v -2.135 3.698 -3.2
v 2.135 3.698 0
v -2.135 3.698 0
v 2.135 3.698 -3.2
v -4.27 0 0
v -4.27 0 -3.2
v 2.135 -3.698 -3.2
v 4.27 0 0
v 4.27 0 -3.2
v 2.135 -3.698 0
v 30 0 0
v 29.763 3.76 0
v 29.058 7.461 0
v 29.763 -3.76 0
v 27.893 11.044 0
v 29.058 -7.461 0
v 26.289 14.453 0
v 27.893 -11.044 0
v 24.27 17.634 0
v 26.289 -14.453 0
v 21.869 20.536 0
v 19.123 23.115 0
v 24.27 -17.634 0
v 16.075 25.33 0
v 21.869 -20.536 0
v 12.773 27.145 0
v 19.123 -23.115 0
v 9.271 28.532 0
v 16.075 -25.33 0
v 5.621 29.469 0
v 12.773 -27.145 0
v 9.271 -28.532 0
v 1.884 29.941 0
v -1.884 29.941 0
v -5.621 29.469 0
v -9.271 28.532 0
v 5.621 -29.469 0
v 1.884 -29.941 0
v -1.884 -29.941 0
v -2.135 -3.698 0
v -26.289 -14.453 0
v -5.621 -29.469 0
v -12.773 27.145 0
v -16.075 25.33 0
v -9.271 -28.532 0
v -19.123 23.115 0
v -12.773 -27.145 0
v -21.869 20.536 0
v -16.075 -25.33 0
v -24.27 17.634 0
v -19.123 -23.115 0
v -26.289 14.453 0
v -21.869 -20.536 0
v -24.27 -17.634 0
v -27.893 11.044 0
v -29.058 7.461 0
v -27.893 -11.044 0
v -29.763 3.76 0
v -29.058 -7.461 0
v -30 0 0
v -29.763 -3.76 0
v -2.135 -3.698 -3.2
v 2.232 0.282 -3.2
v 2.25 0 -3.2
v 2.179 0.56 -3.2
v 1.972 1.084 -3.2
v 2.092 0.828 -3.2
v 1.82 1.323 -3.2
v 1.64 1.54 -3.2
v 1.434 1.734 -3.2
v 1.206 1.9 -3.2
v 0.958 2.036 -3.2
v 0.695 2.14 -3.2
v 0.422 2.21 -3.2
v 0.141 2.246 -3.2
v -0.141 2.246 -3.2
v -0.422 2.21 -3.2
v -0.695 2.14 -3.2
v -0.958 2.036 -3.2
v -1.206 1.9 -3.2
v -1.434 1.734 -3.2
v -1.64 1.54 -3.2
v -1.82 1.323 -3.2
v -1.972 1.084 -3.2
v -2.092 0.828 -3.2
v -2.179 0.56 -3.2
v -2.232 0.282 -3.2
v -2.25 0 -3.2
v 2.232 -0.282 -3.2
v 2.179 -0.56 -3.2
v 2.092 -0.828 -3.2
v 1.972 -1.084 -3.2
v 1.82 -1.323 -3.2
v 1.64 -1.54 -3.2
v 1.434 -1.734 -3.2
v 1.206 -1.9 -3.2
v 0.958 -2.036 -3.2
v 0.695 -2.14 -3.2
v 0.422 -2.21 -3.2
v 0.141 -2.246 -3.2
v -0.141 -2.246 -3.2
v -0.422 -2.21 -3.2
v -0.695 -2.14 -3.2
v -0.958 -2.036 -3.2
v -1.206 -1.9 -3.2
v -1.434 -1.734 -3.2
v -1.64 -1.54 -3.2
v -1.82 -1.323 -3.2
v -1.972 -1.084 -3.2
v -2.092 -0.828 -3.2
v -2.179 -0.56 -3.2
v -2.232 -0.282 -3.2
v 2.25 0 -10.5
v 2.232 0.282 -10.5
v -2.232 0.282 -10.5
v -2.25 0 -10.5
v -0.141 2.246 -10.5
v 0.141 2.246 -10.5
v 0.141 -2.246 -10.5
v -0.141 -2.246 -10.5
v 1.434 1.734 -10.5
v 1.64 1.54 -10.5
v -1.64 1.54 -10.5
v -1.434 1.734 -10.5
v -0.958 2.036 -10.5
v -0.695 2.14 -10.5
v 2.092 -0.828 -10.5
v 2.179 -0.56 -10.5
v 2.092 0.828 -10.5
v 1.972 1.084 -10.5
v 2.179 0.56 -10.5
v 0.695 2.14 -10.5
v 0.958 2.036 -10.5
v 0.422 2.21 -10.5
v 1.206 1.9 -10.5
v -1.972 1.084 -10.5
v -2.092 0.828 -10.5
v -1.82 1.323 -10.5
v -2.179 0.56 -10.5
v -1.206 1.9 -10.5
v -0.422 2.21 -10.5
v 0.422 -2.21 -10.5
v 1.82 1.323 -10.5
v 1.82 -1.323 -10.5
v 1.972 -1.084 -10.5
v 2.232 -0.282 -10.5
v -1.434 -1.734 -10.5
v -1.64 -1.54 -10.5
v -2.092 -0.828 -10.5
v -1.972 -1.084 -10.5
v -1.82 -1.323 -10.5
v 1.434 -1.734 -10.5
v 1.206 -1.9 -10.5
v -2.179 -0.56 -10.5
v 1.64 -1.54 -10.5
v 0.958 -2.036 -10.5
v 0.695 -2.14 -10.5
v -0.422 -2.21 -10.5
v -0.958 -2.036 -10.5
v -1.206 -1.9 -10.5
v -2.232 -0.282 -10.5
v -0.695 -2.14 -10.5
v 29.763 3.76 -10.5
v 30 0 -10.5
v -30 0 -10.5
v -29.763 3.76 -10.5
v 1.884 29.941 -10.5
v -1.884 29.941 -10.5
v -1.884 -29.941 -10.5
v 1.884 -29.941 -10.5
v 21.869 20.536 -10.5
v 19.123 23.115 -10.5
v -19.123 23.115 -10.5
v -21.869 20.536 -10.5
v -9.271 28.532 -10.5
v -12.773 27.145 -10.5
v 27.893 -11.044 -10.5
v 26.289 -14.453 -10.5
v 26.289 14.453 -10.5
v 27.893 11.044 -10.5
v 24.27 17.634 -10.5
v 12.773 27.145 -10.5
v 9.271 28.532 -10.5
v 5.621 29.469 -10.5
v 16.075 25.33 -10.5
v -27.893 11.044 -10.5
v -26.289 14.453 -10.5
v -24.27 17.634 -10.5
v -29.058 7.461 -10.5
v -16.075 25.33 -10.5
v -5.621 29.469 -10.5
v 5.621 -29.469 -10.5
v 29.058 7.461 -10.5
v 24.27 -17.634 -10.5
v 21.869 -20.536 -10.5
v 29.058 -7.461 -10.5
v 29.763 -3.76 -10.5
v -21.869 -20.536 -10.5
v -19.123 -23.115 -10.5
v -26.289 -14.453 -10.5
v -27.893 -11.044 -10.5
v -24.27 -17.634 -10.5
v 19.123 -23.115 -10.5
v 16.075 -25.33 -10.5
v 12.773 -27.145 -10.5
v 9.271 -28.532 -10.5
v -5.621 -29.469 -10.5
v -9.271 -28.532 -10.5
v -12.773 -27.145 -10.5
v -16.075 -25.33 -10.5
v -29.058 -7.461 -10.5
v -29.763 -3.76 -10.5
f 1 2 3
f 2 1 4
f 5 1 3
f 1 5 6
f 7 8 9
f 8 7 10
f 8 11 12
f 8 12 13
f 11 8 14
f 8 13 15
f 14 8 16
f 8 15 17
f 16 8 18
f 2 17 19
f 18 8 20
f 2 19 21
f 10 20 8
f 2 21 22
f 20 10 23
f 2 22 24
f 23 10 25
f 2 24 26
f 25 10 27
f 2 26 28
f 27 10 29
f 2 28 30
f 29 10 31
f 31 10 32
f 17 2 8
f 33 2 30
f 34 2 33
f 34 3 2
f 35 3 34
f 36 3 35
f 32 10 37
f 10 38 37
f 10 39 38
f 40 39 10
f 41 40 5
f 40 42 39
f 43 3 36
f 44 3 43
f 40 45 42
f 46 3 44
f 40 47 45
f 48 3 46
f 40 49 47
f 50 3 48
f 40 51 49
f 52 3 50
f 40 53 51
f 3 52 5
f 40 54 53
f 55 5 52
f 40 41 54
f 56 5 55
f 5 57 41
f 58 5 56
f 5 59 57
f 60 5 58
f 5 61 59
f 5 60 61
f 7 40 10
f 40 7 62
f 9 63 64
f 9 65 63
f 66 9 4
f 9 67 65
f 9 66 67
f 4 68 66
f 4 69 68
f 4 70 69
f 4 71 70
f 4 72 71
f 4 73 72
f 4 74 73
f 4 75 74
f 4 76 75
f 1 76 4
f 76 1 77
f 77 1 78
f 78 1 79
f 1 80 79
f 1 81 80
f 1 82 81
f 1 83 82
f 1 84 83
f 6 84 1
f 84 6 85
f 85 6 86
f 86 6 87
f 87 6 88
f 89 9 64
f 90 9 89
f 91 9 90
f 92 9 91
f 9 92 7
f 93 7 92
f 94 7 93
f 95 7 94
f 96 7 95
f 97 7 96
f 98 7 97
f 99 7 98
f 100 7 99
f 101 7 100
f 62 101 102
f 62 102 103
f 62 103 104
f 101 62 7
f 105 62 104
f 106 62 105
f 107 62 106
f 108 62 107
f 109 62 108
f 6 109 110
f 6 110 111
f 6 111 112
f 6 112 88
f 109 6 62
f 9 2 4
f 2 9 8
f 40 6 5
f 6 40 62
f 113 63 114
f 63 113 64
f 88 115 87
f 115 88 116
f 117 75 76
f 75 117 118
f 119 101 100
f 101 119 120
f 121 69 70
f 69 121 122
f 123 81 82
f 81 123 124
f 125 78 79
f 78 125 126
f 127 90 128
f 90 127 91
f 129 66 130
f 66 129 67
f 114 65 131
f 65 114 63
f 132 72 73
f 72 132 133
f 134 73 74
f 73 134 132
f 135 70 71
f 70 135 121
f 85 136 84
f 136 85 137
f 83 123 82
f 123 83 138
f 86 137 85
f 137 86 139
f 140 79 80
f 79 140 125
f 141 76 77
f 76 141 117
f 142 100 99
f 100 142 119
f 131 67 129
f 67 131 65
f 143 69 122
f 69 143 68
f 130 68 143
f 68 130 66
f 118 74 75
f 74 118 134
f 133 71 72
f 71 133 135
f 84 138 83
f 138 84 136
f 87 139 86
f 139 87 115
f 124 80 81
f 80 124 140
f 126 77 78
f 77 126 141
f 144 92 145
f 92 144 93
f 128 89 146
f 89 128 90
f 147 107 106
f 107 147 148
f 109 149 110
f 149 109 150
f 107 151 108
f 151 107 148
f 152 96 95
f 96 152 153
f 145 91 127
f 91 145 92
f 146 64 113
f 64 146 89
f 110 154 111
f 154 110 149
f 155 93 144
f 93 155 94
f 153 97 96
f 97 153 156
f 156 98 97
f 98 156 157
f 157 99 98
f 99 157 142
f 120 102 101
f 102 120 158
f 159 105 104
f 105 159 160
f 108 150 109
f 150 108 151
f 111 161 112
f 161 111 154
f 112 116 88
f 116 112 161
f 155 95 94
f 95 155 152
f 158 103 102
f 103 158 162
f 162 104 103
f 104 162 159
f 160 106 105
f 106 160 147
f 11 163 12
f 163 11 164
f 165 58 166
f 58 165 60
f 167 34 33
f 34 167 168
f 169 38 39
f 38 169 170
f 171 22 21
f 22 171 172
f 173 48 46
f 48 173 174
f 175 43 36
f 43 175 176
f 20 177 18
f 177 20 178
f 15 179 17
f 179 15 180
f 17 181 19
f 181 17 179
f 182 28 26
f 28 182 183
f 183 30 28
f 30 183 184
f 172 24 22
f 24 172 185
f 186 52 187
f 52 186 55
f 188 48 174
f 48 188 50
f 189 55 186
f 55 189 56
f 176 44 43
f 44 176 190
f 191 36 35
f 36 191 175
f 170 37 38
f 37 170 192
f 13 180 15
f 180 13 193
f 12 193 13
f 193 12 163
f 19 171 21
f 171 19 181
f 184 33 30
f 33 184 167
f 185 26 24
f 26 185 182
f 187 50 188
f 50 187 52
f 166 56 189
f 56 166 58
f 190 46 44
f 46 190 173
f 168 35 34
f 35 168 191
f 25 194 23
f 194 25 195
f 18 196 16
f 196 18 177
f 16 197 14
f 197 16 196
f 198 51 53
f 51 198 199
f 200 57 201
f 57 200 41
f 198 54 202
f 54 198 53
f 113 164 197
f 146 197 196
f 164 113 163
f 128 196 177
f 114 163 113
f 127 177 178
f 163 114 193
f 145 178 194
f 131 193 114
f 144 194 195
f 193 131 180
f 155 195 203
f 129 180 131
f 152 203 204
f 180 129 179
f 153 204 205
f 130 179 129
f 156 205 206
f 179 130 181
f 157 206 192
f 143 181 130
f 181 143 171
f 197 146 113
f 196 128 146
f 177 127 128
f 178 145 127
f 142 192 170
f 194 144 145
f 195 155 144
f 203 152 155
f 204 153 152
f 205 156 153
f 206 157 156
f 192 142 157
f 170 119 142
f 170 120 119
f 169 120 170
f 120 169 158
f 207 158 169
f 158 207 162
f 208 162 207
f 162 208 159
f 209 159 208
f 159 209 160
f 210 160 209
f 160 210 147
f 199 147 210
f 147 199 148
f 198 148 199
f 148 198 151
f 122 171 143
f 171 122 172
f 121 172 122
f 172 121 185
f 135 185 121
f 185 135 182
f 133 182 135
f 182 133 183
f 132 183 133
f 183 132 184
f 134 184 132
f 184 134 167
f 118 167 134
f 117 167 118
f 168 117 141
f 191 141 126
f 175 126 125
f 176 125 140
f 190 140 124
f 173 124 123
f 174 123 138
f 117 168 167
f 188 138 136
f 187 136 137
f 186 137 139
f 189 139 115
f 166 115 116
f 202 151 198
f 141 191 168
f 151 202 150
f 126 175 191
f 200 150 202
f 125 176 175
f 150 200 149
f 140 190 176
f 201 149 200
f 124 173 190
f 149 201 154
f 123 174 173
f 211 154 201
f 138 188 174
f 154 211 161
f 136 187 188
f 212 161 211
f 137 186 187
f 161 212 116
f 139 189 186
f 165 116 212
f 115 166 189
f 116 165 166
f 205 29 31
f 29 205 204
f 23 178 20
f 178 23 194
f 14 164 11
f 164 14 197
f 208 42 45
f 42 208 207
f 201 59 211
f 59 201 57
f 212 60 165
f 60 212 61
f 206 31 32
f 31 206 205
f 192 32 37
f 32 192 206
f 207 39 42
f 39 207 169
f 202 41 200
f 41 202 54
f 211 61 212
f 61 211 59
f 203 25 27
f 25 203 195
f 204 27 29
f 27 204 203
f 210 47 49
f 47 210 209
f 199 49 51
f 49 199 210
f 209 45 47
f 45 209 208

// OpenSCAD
$fn = 50;


difference() {
	union() {
		translate(v = [0, 0, -10.5000000000]) {
			cylinder(h = 10.5000000000, r = 30.0000000000);
		}
	}
	union() {
		translate(v = [0, 0, 0]) {
			rotate(a = [0, 0, 0]) {
				difference() {
					union() {
						translate(v = [0, 0, -3.2000000000]) {
							#linear_extrude(height = 3.2000000000) {
								polygon(points = [[4.2698000000, 0.0000000000], [2.1349000000, 3.6977552691], [-2.1349000000, 3.6977552691], [-4.2698000000, 0.0000000000], [-2.1349000000, -3.6977552691], [2.1349000000, -3.6977552691]]);
							}
						}
					}
					union();
				}
			}
		}
		#translate(v = [0, 0, -100.0000000000]) {
			cylinder(h = 200, r = 2.2500000000);
		}
	}
}
